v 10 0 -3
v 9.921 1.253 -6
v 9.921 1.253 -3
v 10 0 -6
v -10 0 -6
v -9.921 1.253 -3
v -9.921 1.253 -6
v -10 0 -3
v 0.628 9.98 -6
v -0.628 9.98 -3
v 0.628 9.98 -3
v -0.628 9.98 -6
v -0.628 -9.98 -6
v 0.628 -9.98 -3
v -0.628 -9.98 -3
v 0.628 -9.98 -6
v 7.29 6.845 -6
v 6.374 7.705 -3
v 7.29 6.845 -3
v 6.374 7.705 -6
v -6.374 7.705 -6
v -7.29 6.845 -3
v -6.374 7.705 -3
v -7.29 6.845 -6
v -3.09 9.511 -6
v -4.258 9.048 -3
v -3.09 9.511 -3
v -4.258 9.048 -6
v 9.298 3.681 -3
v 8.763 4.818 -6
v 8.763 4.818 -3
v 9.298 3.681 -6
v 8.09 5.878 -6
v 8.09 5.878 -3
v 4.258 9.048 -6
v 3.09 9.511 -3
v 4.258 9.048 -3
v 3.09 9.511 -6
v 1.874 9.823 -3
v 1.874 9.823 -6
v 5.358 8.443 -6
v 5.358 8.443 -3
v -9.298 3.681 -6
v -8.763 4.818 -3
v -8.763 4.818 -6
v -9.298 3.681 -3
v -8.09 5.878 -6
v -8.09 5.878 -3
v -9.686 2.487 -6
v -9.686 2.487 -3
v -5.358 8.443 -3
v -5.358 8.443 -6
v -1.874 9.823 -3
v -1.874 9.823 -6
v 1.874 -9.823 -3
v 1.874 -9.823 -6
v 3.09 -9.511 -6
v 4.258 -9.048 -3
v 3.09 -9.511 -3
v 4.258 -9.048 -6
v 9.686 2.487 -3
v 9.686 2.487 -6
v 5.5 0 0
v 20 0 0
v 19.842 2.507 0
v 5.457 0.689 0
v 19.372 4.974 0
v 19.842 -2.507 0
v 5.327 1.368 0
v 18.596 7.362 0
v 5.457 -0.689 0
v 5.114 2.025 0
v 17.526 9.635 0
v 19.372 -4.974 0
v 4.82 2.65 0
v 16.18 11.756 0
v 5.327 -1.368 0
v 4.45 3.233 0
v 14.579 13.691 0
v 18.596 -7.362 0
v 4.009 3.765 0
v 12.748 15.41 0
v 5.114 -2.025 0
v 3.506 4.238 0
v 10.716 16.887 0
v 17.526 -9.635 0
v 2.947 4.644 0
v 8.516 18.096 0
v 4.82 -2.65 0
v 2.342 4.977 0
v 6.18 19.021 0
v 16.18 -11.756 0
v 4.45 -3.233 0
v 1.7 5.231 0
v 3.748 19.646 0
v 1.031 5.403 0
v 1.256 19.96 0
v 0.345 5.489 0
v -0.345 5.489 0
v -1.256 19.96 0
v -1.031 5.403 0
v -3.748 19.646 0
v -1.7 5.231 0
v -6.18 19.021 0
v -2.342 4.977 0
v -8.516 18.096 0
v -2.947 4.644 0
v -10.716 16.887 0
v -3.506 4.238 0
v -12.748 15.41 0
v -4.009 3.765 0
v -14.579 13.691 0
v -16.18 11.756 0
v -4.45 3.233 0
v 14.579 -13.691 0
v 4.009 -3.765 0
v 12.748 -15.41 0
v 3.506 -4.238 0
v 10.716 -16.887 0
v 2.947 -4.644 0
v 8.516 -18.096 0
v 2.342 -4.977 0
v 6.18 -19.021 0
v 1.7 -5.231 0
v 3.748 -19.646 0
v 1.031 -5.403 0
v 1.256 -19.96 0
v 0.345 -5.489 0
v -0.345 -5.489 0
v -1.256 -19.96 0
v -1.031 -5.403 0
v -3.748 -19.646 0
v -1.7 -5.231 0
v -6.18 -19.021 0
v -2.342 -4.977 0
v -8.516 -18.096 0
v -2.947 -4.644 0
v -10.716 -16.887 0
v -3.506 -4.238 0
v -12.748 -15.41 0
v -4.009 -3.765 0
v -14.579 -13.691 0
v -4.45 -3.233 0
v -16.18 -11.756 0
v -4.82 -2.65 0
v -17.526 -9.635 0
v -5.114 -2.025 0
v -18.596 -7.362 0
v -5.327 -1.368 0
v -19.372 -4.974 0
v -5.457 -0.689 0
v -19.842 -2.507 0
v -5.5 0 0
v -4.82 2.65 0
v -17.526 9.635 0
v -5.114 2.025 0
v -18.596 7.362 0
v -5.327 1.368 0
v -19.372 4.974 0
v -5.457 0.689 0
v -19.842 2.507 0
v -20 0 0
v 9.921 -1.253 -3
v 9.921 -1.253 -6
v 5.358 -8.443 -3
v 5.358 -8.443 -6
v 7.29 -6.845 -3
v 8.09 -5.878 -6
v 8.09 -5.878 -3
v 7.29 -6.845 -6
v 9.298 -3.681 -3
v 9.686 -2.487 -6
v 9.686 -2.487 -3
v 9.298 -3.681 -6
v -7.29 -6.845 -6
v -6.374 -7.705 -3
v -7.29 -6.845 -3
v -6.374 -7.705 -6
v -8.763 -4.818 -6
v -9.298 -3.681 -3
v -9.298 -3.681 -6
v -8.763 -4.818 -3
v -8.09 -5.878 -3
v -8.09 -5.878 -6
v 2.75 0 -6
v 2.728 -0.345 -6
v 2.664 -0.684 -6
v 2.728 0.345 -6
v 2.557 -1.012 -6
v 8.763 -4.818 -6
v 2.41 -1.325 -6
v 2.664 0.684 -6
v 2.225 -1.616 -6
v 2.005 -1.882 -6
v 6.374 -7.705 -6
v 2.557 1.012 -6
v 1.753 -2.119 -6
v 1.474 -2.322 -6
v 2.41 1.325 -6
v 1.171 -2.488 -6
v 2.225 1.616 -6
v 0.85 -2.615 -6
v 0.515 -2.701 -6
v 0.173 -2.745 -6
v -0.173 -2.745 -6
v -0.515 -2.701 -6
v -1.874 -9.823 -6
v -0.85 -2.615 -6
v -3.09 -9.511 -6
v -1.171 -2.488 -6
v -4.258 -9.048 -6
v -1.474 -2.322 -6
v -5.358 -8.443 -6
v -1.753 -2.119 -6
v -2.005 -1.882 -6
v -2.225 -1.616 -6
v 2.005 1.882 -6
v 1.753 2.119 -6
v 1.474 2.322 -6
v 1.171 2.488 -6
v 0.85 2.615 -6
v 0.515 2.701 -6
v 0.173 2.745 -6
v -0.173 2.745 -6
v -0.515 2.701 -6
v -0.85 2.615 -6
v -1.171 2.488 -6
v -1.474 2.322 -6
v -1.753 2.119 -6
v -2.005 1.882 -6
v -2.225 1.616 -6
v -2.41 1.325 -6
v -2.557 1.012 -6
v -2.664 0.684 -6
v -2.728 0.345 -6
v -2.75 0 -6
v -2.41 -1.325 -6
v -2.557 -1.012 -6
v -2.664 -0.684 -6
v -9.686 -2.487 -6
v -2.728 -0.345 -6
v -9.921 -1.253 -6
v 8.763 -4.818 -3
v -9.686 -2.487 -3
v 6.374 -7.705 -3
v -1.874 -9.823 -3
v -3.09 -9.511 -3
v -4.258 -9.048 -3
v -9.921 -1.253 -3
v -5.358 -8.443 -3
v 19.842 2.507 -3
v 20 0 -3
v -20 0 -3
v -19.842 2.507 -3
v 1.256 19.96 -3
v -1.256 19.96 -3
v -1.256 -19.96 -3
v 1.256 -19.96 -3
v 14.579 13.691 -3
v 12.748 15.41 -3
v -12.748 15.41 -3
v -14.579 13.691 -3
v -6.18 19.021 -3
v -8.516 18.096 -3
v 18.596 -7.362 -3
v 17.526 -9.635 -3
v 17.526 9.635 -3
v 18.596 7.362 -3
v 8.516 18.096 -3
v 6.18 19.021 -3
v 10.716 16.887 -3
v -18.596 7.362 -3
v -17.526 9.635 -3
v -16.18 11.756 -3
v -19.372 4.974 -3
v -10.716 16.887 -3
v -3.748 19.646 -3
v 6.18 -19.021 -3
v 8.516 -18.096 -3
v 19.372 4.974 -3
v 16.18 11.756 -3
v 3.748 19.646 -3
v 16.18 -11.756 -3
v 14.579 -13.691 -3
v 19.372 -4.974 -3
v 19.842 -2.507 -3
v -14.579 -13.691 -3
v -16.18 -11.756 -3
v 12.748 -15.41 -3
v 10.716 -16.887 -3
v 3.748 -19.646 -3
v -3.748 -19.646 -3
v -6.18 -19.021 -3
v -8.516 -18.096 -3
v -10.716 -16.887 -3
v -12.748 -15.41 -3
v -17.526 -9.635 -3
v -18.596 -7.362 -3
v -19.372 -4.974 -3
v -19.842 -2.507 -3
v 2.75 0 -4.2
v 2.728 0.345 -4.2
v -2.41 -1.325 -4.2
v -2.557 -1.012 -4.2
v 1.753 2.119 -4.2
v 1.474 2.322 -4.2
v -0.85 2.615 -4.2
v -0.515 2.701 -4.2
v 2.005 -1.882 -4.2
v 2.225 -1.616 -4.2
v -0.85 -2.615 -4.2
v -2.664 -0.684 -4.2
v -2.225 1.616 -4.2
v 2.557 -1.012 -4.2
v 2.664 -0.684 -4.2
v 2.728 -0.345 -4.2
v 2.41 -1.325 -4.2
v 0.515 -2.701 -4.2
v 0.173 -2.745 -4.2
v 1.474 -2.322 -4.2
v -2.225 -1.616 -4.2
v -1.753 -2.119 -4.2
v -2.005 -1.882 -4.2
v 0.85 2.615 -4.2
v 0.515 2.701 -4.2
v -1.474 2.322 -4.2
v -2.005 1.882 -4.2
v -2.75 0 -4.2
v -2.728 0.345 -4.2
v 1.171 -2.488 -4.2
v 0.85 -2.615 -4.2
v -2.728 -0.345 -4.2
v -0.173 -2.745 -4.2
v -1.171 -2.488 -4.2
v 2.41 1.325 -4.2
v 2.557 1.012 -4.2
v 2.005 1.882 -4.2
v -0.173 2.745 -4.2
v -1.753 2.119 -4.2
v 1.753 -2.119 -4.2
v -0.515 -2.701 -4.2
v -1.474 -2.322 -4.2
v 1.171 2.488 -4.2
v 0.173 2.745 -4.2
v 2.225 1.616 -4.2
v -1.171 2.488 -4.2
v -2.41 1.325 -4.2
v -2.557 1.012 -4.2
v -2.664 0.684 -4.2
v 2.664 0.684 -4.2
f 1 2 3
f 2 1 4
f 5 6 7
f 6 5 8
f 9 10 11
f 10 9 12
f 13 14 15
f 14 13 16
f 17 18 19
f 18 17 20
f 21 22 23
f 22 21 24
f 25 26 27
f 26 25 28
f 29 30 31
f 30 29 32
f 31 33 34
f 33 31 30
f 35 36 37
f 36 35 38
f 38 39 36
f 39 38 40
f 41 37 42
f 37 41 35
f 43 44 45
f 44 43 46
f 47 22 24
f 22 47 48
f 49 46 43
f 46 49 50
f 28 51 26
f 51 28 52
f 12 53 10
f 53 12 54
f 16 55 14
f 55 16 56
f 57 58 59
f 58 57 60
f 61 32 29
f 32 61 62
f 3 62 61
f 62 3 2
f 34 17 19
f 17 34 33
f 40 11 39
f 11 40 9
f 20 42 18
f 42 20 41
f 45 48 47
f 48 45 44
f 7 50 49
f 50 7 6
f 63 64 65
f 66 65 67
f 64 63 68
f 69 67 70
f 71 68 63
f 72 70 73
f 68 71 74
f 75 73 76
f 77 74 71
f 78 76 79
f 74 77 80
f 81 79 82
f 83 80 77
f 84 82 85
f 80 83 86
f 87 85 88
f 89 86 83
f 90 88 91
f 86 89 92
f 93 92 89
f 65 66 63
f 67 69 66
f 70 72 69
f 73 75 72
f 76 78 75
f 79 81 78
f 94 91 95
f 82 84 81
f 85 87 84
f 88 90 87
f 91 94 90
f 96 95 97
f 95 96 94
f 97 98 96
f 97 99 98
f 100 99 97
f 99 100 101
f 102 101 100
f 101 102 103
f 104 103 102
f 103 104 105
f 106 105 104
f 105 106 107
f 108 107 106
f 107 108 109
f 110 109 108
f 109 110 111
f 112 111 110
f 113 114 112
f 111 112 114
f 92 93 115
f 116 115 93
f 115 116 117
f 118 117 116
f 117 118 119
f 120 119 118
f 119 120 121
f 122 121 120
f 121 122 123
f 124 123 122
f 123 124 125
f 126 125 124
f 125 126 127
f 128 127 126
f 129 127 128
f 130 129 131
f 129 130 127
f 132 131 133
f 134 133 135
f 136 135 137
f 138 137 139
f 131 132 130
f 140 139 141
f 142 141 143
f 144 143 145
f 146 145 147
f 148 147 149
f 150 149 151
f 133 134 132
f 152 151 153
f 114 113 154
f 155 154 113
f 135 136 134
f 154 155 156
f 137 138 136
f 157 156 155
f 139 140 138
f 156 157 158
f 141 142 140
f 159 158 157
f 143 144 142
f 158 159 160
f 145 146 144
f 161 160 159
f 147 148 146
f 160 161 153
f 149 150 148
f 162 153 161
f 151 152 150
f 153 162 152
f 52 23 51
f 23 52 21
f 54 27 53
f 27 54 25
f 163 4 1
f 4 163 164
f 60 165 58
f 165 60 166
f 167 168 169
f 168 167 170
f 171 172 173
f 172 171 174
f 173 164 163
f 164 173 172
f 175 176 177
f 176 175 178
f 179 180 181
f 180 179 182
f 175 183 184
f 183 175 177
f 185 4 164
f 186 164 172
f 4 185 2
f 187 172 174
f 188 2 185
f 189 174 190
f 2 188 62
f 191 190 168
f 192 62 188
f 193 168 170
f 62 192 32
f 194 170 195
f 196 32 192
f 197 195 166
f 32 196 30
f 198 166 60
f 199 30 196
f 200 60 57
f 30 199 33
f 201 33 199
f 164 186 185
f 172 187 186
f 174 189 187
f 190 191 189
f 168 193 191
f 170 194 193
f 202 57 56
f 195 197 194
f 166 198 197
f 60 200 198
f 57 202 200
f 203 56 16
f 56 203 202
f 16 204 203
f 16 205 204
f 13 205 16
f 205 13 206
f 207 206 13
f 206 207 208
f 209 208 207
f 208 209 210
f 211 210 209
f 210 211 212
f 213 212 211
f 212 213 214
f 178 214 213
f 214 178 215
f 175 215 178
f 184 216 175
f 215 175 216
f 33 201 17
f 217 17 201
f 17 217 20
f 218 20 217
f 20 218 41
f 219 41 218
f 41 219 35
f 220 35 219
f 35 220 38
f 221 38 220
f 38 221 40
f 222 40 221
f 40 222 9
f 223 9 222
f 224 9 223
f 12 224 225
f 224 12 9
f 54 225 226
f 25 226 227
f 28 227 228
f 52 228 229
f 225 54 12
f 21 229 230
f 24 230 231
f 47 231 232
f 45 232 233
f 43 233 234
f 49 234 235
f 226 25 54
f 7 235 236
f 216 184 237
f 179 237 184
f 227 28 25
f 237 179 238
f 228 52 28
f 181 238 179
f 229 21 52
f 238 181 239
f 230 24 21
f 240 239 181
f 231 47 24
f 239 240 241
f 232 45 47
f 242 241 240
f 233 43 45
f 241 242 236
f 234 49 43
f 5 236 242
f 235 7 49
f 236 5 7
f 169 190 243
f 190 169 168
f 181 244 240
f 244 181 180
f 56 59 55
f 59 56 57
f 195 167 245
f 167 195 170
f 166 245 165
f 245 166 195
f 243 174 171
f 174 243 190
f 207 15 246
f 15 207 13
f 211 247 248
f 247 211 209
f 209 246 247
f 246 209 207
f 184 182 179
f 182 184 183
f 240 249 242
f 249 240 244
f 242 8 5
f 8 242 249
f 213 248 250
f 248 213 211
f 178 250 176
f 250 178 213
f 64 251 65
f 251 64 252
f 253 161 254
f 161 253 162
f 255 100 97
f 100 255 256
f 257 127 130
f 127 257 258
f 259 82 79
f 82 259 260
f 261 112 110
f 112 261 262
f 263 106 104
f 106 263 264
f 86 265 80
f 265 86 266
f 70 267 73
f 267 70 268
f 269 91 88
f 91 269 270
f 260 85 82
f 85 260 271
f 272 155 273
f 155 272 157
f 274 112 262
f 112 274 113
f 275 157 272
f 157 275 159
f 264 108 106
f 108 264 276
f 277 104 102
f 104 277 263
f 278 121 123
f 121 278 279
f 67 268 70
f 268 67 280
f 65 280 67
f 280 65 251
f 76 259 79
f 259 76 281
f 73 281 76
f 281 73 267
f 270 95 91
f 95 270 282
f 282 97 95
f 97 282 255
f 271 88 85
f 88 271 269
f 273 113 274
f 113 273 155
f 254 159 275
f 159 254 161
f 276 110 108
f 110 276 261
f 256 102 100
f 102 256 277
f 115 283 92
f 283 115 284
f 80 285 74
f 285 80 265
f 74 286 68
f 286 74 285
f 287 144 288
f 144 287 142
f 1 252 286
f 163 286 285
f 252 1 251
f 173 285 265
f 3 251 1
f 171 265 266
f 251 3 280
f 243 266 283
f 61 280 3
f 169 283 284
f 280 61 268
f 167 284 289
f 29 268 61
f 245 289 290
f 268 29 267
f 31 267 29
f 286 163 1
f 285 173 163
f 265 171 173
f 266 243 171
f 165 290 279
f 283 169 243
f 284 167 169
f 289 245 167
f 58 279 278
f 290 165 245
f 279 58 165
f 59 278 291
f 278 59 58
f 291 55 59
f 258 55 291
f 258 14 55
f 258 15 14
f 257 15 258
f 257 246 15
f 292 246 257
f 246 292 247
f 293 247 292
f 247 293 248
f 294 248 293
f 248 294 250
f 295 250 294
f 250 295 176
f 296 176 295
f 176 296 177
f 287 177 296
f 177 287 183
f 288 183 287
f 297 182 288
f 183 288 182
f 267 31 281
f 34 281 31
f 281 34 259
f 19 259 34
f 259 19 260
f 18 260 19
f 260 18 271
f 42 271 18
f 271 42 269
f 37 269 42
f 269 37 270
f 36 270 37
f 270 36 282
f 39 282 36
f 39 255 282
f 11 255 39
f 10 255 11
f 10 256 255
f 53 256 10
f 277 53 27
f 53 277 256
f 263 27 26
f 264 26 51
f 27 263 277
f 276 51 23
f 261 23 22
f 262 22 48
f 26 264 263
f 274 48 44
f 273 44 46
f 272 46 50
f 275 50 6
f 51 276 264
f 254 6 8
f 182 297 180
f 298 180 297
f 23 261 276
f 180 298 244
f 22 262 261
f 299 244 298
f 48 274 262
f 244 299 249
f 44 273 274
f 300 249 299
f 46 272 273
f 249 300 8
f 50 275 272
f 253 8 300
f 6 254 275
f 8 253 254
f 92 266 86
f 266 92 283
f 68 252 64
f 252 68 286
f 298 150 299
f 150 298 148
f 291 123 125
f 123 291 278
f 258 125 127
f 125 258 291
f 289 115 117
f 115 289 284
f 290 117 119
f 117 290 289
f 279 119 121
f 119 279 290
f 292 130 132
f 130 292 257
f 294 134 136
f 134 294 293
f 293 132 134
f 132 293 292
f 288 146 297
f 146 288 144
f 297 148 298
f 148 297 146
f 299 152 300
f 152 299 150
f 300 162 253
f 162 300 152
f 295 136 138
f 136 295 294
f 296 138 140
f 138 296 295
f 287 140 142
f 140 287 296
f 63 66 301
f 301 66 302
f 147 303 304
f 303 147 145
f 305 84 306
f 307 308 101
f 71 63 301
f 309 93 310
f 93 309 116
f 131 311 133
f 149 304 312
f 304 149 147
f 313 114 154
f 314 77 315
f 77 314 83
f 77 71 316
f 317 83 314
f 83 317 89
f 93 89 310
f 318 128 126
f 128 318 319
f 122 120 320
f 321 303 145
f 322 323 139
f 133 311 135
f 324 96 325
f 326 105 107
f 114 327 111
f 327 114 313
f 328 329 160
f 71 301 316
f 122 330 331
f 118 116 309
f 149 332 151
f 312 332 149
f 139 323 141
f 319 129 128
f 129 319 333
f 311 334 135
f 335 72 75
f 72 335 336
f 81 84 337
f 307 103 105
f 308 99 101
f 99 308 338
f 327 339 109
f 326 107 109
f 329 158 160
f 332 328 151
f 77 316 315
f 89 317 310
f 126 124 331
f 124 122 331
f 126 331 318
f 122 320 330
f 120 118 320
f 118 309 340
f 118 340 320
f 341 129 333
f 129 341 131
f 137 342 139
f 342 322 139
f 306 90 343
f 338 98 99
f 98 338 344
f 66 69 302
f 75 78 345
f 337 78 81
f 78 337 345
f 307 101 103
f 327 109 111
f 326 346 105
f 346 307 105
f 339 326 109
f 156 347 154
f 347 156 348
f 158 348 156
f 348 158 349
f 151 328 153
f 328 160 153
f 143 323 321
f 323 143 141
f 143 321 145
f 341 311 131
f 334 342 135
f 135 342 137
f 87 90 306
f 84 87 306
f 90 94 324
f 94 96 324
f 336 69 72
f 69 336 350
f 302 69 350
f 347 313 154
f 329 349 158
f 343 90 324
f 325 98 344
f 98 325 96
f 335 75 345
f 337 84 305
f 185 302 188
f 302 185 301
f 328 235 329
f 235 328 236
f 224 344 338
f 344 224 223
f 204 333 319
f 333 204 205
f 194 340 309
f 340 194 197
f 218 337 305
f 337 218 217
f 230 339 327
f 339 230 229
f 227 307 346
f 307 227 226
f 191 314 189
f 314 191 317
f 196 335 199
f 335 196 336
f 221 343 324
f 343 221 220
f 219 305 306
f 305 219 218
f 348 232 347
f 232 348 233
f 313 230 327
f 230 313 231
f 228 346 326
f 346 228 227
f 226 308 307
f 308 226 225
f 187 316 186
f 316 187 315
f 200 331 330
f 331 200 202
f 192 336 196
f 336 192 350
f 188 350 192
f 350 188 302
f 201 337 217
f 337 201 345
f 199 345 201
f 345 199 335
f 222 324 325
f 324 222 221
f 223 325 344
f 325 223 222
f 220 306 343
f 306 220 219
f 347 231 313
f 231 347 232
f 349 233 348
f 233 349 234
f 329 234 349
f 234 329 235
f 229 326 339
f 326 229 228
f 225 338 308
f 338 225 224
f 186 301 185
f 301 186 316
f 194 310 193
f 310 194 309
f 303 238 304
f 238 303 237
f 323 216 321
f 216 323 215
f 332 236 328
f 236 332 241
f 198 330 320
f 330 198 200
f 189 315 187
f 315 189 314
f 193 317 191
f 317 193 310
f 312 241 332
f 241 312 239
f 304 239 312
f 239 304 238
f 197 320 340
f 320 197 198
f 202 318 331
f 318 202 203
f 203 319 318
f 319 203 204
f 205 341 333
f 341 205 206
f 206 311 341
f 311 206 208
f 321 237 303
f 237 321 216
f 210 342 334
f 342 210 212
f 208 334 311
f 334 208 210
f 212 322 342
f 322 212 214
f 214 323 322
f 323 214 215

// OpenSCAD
$fn = 50;


difference() {
	union() {
		translate(v = [0, 0, -6.0000000000]) {
			cylinder(h = 6, r = 10.0000000000);
		}
		translate(v = [0, 0, -3.0000000000]) {
			cylinder(h = 3, r = 20.0000000000);
		}
	}
	union() {
		translate(v = [0, 0, 0]) {
			rotate(a = [0, 0, 0]) {
				difference() {
					union() {
						#translate(v = [0, 0, -6.0000000000]) {
							cylinder(h = 6, r = 2.2500000000);
						}
						#translate(v = [0, 0, -4.2000000000]) {
							cylinder(h = 4.2000000000, r1 = 2.7500000000, r2 = 5.5000000000);
						}
						#translate(v = [0, 0, -6.0000000000]) {
							cylinder(h = 6, r = 2.7500000000);
						}
						#translate(v = [0, 0, -6.0000000000]) {
							cylinder(h = 6, r = 2.2500000000);
						}
					}
					union();
				}
			}
		}
	}
}
